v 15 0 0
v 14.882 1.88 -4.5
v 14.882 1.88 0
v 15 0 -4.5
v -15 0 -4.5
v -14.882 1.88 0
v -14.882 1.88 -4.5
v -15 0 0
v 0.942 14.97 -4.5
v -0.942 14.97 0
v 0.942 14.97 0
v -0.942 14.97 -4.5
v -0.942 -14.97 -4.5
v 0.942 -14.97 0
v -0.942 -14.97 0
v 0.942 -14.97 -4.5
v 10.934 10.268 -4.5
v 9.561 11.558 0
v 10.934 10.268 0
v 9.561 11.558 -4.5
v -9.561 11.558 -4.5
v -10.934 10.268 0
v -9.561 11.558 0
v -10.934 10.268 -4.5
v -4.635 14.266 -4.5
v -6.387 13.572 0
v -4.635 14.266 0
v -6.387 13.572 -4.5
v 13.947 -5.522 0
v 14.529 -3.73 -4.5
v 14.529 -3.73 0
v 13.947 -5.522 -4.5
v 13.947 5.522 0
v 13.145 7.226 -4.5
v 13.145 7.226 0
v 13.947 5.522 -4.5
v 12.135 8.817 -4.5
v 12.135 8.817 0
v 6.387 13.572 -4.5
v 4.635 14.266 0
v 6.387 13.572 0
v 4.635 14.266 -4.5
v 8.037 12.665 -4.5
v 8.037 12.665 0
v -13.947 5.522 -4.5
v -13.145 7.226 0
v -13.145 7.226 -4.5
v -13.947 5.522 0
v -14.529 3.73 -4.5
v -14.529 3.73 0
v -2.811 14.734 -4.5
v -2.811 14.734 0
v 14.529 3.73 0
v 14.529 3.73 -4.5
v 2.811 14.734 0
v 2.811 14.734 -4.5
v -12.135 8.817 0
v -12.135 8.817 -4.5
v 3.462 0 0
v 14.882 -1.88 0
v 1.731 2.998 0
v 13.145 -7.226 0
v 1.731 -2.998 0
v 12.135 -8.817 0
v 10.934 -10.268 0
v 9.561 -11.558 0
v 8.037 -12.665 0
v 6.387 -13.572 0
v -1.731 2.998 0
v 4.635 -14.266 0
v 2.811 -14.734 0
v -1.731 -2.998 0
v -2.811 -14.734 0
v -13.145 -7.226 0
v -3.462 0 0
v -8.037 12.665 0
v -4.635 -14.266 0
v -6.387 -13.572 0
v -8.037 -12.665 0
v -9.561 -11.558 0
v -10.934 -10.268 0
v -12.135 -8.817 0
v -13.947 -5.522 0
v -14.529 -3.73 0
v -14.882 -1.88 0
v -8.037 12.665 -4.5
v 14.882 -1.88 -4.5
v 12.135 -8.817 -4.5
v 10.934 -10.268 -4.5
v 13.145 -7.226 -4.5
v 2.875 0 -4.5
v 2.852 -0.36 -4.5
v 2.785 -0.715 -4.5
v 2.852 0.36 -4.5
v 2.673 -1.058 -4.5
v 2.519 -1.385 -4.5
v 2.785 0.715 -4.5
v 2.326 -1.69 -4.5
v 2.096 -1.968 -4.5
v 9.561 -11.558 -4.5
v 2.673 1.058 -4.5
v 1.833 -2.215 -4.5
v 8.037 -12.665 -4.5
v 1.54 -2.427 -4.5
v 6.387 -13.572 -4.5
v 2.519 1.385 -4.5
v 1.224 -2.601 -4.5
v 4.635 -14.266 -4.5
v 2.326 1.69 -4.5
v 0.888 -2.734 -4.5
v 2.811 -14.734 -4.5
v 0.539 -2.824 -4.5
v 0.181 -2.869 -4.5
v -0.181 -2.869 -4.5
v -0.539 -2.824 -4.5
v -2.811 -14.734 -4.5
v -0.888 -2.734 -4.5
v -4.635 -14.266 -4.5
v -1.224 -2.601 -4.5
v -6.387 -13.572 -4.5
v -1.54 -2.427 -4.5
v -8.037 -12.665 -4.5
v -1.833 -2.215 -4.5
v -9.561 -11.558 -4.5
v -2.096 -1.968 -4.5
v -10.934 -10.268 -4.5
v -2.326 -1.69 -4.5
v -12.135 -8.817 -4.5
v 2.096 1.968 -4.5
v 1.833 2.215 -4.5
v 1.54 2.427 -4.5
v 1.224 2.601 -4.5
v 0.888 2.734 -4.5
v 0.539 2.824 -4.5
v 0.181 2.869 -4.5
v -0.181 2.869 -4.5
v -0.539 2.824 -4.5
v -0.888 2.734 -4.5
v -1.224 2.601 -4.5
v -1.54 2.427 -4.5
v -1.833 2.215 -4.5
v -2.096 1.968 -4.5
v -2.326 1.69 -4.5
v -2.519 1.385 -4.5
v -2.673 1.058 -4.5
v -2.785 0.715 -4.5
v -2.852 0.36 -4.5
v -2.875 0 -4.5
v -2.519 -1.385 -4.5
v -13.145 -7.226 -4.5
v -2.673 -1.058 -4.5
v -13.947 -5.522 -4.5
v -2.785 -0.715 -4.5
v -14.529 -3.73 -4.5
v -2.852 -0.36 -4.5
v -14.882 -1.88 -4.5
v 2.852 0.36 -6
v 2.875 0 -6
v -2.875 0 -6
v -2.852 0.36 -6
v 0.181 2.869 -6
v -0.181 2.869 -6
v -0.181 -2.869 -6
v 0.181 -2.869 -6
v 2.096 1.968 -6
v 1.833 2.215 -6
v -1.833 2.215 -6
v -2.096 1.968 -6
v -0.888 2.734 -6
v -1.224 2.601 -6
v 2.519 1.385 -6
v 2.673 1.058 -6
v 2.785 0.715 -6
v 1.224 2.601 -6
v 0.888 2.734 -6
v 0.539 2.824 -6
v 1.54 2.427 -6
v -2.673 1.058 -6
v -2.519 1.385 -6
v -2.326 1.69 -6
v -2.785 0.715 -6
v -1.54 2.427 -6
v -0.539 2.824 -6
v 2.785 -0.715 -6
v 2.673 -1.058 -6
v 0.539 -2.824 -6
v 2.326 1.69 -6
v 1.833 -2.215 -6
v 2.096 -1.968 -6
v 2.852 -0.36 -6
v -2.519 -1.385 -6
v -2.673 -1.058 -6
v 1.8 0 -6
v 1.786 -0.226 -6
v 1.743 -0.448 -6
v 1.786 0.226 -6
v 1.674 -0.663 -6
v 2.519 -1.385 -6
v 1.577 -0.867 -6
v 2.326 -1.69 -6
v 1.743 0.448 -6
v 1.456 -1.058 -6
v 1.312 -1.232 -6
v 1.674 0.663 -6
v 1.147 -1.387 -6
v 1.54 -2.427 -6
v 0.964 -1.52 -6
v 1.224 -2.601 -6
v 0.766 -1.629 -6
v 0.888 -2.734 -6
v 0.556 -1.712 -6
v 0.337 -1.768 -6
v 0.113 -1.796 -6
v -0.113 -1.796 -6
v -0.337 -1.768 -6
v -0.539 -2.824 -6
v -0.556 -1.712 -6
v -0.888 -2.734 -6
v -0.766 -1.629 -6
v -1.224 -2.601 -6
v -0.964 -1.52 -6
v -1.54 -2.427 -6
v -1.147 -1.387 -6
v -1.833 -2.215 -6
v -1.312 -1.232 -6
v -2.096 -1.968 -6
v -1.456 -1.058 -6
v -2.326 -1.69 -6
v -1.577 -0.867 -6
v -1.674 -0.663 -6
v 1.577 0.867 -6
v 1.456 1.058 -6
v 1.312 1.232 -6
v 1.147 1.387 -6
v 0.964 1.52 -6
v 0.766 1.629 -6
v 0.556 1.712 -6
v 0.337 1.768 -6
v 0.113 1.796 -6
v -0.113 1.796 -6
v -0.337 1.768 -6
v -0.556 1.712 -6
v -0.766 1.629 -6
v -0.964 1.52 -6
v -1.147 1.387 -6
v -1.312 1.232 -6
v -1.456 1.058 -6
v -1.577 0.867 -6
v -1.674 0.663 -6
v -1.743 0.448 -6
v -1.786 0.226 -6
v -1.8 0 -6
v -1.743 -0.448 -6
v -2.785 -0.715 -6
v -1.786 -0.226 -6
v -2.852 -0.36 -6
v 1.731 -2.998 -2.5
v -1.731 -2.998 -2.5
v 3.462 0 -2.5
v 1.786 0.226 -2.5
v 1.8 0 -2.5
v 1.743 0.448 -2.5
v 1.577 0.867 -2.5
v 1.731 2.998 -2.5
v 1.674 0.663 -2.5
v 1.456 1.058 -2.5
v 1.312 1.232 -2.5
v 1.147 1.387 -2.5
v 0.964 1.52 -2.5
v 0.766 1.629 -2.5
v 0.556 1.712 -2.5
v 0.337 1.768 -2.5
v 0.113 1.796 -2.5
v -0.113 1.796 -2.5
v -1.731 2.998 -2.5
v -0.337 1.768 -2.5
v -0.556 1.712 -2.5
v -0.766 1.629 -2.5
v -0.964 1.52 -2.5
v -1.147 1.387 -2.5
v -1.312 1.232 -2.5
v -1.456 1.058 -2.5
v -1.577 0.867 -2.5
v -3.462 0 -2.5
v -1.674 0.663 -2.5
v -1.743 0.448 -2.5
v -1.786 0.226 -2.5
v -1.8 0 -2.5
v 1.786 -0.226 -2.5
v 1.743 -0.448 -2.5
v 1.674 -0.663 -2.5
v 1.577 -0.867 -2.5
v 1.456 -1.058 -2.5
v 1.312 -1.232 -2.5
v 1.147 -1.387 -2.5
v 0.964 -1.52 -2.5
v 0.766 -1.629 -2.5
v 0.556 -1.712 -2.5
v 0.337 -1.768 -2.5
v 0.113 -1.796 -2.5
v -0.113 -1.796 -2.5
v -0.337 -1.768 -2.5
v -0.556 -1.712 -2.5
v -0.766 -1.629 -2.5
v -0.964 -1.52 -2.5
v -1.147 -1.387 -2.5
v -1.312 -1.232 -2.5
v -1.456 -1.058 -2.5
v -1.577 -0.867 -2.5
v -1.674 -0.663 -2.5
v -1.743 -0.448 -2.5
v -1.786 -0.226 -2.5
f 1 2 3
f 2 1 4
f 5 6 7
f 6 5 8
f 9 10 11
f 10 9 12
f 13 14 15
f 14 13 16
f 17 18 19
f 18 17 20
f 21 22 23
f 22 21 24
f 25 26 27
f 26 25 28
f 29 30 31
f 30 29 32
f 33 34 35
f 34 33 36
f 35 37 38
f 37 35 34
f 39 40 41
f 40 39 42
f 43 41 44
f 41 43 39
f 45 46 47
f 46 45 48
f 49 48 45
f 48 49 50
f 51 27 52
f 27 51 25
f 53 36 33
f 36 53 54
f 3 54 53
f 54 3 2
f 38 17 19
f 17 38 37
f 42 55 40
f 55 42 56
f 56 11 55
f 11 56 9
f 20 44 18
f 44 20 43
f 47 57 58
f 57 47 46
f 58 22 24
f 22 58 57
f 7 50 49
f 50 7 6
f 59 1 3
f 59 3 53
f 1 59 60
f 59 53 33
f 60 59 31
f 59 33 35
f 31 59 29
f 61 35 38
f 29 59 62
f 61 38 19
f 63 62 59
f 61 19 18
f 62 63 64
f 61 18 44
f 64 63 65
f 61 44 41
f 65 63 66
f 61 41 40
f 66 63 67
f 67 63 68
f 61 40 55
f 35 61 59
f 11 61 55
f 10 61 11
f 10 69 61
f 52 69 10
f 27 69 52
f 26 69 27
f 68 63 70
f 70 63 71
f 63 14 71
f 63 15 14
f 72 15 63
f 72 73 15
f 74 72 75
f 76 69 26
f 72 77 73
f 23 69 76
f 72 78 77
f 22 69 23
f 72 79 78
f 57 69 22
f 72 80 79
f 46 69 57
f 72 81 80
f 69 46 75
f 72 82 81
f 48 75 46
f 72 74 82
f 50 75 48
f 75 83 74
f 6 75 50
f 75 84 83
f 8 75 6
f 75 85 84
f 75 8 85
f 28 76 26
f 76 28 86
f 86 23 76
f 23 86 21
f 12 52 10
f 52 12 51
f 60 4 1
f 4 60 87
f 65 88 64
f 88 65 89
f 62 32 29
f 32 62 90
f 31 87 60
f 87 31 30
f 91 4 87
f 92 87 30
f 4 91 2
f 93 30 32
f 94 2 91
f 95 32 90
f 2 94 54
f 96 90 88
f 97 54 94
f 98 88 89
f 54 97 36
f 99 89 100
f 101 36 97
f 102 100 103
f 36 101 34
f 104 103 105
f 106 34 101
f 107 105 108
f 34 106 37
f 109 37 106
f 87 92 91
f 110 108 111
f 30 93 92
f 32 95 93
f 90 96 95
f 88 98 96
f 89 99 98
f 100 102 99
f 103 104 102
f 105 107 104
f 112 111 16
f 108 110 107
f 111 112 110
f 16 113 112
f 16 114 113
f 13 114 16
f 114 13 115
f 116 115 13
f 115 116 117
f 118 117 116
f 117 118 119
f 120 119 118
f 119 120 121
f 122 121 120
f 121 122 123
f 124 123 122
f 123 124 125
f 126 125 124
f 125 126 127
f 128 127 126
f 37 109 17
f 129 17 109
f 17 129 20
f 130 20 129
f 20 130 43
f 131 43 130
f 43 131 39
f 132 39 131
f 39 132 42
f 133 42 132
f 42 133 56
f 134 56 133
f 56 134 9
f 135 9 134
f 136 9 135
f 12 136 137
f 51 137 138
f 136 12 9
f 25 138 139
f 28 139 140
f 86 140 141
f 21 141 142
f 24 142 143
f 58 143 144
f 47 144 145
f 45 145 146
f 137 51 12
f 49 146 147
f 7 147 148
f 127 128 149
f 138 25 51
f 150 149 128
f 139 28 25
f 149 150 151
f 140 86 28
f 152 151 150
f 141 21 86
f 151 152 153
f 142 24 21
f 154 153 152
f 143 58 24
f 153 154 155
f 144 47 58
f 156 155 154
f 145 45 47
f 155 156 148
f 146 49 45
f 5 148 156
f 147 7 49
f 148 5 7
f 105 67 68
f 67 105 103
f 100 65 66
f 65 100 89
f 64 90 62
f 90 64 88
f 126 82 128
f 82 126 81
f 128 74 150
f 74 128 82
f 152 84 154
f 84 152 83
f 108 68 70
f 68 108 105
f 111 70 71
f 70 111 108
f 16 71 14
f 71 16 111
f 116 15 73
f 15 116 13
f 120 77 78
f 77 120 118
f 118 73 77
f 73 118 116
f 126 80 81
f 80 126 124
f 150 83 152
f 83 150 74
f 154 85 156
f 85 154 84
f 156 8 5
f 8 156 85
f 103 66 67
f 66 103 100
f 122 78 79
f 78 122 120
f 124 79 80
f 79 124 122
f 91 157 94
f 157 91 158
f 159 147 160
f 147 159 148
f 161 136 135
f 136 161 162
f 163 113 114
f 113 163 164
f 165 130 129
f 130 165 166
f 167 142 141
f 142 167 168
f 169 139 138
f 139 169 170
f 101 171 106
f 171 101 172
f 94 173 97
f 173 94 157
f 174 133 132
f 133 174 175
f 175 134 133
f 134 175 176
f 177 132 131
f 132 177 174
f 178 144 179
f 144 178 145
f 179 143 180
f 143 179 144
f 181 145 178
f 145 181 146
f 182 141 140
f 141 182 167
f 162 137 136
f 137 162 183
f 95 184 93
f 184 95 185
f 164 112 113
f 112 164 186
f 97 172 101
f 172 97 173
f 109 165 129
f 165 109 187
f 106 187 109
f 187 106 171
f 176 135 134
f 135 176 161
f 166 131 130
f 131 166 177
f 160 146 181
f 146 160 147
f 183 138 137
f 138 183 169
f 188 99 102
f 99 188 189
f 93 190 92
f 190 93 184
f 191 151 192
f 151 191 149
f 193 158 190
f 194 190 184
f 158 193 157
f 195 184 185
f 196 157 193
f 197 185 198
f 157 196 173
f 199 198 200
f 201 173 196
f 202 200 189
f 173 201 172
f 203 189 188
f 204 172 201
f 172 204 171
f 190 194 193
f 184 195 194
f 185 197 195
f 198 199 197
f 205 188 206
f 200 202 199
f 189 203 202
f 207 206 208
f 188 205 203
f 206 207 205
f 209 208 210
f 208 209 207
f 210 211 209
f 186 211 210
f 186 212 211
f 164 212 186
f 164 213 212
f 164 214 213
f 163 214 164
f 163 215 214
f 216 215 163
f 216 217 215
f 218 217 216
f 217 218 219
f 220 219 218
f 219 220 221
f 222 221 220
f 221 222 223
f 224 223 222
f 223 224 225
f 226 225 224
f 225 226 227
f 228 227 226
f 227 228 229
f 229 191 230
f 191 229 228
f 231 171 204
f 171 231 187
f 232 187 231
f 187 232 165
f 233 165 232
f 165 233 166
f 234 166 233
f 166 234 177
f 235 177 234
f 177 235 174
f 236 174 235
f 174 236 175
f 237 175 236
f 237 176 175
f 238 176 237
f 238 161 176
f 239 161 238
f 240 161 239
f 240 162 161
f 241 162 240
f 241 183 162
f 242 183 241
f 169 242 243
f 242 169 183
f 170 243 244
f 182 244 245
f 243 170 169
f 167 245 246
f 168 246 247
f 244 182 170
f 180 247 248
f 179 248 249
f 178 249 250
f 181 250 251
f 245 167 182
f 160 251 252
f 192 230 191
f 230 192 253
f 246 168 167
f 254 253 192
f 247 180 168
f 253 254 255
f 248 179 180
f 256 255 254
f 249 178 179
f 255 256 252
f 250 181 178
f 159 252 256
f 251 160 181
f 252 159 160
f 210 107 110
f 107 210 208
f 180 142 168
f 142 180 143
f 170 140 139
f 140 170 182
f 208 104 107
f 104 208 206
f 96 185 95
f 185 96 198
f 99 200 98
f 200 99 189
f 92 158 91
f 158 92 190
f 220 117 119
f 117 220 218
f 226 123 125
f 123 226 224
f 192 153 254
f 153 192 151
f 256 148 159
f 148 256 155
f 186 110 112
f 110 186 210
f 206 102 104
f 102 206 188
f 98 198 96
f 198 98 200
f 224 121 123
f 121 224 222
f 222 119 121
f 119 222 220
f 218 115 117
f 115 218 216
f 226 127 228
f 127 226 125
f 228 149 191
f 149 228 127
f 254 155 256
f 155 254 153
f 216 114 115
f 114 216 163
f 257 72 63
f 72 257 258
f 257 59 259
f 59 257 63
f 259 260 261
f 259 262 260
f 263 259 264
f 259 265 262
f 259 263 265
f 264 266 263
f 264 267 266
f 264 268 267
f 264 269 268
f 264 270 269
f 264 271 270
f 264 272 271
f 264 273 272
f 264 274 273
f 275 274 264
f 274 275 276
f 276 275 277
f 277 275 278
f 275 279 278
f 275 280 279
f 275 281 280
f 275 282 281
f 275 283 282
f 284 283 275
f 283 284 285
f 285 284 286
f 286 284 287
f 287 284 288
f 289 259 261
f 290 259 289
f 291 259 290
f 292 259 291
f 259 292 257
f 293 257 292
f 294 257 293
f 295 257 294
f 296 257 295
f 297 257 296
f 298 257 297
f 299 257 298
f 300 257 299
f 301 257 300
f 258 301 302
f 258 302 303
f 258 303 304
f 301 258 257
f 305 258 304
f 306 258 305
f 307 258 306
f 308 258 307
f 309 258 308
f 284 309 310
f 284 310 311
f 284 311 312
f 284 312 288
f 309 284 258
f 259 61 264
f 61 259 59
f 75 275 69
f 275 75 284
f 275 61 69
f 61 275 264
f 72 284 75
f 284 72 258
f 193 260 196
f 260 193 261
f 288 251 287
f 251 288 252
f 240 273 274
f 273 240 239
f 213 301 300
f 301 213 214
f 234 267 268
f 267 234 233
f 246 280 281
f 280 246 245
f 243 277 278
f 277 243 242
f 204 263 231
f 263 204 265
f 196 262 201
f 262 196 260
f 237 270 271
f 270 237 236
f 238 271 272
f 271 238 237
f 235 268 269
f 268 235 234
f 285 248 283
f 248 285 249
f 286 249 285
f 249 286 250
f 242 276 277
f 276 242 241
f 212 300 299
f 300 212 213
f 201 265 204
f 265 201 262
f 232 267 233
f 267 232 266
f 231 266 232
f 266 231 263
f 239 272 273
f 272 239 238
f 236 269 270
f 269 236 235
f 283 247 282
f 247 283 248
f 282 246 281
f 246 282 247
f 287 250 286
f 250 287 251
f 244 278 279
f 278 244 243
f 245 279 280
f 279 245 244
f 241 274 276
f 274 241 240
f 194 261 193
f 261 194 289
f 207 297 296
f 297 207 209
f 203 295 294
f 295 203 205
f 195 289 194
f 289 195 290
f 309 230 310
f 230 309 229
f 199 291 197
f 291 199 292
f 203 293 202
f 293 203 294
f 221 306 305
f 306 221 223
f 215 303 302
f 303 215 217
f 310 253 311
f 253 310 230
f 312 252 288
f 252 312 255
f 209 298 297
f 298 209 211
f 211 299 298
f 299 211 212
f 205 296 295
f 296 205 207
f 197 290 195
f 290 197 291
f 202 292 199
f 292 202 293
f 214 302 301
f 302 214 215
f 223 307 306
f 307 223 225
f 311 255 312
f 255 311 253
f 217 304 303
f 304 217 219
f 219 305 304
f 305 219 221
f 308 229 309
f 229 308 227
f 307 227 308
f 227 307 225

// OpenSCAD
$fn = 50;


difference() {
	union() {
		translate(v = [0, 0, -4.5000000000]) {
			cylinder(h = 4.5000000000, r = 15.0000000000);
		}
		translate(v = [0, 0, -6.0000000000]) {
			cylinder(h = 6, r = 2.8750000000);
		}
	}
	union() {
		translate(v = [0, 0, 0]) {
			rotate(a = [0, 0, 0]) {
				difference() {
					union() {
						translate(v = [0, 0, -2.5000000000]) {
							linear_extrude(height = 2.5000000000) {
								polygon(points = [[3.4620000000, 0.0000000000], [1.7310000000, 2.9981799479], [-1.7310000000, 2.9981799479], [-3.4620000000, 0.0000000000], [-1.7310000000, -2.9981799479], [1.7310000000, -2.9981799479]]);
							}
						}
					}
					union();
				}
			}
		}
		#translate(v = [0, 0, -100.0000000000]) {
			cylinder(h = 200, r = 1.8000000000);
		}
	}
}
